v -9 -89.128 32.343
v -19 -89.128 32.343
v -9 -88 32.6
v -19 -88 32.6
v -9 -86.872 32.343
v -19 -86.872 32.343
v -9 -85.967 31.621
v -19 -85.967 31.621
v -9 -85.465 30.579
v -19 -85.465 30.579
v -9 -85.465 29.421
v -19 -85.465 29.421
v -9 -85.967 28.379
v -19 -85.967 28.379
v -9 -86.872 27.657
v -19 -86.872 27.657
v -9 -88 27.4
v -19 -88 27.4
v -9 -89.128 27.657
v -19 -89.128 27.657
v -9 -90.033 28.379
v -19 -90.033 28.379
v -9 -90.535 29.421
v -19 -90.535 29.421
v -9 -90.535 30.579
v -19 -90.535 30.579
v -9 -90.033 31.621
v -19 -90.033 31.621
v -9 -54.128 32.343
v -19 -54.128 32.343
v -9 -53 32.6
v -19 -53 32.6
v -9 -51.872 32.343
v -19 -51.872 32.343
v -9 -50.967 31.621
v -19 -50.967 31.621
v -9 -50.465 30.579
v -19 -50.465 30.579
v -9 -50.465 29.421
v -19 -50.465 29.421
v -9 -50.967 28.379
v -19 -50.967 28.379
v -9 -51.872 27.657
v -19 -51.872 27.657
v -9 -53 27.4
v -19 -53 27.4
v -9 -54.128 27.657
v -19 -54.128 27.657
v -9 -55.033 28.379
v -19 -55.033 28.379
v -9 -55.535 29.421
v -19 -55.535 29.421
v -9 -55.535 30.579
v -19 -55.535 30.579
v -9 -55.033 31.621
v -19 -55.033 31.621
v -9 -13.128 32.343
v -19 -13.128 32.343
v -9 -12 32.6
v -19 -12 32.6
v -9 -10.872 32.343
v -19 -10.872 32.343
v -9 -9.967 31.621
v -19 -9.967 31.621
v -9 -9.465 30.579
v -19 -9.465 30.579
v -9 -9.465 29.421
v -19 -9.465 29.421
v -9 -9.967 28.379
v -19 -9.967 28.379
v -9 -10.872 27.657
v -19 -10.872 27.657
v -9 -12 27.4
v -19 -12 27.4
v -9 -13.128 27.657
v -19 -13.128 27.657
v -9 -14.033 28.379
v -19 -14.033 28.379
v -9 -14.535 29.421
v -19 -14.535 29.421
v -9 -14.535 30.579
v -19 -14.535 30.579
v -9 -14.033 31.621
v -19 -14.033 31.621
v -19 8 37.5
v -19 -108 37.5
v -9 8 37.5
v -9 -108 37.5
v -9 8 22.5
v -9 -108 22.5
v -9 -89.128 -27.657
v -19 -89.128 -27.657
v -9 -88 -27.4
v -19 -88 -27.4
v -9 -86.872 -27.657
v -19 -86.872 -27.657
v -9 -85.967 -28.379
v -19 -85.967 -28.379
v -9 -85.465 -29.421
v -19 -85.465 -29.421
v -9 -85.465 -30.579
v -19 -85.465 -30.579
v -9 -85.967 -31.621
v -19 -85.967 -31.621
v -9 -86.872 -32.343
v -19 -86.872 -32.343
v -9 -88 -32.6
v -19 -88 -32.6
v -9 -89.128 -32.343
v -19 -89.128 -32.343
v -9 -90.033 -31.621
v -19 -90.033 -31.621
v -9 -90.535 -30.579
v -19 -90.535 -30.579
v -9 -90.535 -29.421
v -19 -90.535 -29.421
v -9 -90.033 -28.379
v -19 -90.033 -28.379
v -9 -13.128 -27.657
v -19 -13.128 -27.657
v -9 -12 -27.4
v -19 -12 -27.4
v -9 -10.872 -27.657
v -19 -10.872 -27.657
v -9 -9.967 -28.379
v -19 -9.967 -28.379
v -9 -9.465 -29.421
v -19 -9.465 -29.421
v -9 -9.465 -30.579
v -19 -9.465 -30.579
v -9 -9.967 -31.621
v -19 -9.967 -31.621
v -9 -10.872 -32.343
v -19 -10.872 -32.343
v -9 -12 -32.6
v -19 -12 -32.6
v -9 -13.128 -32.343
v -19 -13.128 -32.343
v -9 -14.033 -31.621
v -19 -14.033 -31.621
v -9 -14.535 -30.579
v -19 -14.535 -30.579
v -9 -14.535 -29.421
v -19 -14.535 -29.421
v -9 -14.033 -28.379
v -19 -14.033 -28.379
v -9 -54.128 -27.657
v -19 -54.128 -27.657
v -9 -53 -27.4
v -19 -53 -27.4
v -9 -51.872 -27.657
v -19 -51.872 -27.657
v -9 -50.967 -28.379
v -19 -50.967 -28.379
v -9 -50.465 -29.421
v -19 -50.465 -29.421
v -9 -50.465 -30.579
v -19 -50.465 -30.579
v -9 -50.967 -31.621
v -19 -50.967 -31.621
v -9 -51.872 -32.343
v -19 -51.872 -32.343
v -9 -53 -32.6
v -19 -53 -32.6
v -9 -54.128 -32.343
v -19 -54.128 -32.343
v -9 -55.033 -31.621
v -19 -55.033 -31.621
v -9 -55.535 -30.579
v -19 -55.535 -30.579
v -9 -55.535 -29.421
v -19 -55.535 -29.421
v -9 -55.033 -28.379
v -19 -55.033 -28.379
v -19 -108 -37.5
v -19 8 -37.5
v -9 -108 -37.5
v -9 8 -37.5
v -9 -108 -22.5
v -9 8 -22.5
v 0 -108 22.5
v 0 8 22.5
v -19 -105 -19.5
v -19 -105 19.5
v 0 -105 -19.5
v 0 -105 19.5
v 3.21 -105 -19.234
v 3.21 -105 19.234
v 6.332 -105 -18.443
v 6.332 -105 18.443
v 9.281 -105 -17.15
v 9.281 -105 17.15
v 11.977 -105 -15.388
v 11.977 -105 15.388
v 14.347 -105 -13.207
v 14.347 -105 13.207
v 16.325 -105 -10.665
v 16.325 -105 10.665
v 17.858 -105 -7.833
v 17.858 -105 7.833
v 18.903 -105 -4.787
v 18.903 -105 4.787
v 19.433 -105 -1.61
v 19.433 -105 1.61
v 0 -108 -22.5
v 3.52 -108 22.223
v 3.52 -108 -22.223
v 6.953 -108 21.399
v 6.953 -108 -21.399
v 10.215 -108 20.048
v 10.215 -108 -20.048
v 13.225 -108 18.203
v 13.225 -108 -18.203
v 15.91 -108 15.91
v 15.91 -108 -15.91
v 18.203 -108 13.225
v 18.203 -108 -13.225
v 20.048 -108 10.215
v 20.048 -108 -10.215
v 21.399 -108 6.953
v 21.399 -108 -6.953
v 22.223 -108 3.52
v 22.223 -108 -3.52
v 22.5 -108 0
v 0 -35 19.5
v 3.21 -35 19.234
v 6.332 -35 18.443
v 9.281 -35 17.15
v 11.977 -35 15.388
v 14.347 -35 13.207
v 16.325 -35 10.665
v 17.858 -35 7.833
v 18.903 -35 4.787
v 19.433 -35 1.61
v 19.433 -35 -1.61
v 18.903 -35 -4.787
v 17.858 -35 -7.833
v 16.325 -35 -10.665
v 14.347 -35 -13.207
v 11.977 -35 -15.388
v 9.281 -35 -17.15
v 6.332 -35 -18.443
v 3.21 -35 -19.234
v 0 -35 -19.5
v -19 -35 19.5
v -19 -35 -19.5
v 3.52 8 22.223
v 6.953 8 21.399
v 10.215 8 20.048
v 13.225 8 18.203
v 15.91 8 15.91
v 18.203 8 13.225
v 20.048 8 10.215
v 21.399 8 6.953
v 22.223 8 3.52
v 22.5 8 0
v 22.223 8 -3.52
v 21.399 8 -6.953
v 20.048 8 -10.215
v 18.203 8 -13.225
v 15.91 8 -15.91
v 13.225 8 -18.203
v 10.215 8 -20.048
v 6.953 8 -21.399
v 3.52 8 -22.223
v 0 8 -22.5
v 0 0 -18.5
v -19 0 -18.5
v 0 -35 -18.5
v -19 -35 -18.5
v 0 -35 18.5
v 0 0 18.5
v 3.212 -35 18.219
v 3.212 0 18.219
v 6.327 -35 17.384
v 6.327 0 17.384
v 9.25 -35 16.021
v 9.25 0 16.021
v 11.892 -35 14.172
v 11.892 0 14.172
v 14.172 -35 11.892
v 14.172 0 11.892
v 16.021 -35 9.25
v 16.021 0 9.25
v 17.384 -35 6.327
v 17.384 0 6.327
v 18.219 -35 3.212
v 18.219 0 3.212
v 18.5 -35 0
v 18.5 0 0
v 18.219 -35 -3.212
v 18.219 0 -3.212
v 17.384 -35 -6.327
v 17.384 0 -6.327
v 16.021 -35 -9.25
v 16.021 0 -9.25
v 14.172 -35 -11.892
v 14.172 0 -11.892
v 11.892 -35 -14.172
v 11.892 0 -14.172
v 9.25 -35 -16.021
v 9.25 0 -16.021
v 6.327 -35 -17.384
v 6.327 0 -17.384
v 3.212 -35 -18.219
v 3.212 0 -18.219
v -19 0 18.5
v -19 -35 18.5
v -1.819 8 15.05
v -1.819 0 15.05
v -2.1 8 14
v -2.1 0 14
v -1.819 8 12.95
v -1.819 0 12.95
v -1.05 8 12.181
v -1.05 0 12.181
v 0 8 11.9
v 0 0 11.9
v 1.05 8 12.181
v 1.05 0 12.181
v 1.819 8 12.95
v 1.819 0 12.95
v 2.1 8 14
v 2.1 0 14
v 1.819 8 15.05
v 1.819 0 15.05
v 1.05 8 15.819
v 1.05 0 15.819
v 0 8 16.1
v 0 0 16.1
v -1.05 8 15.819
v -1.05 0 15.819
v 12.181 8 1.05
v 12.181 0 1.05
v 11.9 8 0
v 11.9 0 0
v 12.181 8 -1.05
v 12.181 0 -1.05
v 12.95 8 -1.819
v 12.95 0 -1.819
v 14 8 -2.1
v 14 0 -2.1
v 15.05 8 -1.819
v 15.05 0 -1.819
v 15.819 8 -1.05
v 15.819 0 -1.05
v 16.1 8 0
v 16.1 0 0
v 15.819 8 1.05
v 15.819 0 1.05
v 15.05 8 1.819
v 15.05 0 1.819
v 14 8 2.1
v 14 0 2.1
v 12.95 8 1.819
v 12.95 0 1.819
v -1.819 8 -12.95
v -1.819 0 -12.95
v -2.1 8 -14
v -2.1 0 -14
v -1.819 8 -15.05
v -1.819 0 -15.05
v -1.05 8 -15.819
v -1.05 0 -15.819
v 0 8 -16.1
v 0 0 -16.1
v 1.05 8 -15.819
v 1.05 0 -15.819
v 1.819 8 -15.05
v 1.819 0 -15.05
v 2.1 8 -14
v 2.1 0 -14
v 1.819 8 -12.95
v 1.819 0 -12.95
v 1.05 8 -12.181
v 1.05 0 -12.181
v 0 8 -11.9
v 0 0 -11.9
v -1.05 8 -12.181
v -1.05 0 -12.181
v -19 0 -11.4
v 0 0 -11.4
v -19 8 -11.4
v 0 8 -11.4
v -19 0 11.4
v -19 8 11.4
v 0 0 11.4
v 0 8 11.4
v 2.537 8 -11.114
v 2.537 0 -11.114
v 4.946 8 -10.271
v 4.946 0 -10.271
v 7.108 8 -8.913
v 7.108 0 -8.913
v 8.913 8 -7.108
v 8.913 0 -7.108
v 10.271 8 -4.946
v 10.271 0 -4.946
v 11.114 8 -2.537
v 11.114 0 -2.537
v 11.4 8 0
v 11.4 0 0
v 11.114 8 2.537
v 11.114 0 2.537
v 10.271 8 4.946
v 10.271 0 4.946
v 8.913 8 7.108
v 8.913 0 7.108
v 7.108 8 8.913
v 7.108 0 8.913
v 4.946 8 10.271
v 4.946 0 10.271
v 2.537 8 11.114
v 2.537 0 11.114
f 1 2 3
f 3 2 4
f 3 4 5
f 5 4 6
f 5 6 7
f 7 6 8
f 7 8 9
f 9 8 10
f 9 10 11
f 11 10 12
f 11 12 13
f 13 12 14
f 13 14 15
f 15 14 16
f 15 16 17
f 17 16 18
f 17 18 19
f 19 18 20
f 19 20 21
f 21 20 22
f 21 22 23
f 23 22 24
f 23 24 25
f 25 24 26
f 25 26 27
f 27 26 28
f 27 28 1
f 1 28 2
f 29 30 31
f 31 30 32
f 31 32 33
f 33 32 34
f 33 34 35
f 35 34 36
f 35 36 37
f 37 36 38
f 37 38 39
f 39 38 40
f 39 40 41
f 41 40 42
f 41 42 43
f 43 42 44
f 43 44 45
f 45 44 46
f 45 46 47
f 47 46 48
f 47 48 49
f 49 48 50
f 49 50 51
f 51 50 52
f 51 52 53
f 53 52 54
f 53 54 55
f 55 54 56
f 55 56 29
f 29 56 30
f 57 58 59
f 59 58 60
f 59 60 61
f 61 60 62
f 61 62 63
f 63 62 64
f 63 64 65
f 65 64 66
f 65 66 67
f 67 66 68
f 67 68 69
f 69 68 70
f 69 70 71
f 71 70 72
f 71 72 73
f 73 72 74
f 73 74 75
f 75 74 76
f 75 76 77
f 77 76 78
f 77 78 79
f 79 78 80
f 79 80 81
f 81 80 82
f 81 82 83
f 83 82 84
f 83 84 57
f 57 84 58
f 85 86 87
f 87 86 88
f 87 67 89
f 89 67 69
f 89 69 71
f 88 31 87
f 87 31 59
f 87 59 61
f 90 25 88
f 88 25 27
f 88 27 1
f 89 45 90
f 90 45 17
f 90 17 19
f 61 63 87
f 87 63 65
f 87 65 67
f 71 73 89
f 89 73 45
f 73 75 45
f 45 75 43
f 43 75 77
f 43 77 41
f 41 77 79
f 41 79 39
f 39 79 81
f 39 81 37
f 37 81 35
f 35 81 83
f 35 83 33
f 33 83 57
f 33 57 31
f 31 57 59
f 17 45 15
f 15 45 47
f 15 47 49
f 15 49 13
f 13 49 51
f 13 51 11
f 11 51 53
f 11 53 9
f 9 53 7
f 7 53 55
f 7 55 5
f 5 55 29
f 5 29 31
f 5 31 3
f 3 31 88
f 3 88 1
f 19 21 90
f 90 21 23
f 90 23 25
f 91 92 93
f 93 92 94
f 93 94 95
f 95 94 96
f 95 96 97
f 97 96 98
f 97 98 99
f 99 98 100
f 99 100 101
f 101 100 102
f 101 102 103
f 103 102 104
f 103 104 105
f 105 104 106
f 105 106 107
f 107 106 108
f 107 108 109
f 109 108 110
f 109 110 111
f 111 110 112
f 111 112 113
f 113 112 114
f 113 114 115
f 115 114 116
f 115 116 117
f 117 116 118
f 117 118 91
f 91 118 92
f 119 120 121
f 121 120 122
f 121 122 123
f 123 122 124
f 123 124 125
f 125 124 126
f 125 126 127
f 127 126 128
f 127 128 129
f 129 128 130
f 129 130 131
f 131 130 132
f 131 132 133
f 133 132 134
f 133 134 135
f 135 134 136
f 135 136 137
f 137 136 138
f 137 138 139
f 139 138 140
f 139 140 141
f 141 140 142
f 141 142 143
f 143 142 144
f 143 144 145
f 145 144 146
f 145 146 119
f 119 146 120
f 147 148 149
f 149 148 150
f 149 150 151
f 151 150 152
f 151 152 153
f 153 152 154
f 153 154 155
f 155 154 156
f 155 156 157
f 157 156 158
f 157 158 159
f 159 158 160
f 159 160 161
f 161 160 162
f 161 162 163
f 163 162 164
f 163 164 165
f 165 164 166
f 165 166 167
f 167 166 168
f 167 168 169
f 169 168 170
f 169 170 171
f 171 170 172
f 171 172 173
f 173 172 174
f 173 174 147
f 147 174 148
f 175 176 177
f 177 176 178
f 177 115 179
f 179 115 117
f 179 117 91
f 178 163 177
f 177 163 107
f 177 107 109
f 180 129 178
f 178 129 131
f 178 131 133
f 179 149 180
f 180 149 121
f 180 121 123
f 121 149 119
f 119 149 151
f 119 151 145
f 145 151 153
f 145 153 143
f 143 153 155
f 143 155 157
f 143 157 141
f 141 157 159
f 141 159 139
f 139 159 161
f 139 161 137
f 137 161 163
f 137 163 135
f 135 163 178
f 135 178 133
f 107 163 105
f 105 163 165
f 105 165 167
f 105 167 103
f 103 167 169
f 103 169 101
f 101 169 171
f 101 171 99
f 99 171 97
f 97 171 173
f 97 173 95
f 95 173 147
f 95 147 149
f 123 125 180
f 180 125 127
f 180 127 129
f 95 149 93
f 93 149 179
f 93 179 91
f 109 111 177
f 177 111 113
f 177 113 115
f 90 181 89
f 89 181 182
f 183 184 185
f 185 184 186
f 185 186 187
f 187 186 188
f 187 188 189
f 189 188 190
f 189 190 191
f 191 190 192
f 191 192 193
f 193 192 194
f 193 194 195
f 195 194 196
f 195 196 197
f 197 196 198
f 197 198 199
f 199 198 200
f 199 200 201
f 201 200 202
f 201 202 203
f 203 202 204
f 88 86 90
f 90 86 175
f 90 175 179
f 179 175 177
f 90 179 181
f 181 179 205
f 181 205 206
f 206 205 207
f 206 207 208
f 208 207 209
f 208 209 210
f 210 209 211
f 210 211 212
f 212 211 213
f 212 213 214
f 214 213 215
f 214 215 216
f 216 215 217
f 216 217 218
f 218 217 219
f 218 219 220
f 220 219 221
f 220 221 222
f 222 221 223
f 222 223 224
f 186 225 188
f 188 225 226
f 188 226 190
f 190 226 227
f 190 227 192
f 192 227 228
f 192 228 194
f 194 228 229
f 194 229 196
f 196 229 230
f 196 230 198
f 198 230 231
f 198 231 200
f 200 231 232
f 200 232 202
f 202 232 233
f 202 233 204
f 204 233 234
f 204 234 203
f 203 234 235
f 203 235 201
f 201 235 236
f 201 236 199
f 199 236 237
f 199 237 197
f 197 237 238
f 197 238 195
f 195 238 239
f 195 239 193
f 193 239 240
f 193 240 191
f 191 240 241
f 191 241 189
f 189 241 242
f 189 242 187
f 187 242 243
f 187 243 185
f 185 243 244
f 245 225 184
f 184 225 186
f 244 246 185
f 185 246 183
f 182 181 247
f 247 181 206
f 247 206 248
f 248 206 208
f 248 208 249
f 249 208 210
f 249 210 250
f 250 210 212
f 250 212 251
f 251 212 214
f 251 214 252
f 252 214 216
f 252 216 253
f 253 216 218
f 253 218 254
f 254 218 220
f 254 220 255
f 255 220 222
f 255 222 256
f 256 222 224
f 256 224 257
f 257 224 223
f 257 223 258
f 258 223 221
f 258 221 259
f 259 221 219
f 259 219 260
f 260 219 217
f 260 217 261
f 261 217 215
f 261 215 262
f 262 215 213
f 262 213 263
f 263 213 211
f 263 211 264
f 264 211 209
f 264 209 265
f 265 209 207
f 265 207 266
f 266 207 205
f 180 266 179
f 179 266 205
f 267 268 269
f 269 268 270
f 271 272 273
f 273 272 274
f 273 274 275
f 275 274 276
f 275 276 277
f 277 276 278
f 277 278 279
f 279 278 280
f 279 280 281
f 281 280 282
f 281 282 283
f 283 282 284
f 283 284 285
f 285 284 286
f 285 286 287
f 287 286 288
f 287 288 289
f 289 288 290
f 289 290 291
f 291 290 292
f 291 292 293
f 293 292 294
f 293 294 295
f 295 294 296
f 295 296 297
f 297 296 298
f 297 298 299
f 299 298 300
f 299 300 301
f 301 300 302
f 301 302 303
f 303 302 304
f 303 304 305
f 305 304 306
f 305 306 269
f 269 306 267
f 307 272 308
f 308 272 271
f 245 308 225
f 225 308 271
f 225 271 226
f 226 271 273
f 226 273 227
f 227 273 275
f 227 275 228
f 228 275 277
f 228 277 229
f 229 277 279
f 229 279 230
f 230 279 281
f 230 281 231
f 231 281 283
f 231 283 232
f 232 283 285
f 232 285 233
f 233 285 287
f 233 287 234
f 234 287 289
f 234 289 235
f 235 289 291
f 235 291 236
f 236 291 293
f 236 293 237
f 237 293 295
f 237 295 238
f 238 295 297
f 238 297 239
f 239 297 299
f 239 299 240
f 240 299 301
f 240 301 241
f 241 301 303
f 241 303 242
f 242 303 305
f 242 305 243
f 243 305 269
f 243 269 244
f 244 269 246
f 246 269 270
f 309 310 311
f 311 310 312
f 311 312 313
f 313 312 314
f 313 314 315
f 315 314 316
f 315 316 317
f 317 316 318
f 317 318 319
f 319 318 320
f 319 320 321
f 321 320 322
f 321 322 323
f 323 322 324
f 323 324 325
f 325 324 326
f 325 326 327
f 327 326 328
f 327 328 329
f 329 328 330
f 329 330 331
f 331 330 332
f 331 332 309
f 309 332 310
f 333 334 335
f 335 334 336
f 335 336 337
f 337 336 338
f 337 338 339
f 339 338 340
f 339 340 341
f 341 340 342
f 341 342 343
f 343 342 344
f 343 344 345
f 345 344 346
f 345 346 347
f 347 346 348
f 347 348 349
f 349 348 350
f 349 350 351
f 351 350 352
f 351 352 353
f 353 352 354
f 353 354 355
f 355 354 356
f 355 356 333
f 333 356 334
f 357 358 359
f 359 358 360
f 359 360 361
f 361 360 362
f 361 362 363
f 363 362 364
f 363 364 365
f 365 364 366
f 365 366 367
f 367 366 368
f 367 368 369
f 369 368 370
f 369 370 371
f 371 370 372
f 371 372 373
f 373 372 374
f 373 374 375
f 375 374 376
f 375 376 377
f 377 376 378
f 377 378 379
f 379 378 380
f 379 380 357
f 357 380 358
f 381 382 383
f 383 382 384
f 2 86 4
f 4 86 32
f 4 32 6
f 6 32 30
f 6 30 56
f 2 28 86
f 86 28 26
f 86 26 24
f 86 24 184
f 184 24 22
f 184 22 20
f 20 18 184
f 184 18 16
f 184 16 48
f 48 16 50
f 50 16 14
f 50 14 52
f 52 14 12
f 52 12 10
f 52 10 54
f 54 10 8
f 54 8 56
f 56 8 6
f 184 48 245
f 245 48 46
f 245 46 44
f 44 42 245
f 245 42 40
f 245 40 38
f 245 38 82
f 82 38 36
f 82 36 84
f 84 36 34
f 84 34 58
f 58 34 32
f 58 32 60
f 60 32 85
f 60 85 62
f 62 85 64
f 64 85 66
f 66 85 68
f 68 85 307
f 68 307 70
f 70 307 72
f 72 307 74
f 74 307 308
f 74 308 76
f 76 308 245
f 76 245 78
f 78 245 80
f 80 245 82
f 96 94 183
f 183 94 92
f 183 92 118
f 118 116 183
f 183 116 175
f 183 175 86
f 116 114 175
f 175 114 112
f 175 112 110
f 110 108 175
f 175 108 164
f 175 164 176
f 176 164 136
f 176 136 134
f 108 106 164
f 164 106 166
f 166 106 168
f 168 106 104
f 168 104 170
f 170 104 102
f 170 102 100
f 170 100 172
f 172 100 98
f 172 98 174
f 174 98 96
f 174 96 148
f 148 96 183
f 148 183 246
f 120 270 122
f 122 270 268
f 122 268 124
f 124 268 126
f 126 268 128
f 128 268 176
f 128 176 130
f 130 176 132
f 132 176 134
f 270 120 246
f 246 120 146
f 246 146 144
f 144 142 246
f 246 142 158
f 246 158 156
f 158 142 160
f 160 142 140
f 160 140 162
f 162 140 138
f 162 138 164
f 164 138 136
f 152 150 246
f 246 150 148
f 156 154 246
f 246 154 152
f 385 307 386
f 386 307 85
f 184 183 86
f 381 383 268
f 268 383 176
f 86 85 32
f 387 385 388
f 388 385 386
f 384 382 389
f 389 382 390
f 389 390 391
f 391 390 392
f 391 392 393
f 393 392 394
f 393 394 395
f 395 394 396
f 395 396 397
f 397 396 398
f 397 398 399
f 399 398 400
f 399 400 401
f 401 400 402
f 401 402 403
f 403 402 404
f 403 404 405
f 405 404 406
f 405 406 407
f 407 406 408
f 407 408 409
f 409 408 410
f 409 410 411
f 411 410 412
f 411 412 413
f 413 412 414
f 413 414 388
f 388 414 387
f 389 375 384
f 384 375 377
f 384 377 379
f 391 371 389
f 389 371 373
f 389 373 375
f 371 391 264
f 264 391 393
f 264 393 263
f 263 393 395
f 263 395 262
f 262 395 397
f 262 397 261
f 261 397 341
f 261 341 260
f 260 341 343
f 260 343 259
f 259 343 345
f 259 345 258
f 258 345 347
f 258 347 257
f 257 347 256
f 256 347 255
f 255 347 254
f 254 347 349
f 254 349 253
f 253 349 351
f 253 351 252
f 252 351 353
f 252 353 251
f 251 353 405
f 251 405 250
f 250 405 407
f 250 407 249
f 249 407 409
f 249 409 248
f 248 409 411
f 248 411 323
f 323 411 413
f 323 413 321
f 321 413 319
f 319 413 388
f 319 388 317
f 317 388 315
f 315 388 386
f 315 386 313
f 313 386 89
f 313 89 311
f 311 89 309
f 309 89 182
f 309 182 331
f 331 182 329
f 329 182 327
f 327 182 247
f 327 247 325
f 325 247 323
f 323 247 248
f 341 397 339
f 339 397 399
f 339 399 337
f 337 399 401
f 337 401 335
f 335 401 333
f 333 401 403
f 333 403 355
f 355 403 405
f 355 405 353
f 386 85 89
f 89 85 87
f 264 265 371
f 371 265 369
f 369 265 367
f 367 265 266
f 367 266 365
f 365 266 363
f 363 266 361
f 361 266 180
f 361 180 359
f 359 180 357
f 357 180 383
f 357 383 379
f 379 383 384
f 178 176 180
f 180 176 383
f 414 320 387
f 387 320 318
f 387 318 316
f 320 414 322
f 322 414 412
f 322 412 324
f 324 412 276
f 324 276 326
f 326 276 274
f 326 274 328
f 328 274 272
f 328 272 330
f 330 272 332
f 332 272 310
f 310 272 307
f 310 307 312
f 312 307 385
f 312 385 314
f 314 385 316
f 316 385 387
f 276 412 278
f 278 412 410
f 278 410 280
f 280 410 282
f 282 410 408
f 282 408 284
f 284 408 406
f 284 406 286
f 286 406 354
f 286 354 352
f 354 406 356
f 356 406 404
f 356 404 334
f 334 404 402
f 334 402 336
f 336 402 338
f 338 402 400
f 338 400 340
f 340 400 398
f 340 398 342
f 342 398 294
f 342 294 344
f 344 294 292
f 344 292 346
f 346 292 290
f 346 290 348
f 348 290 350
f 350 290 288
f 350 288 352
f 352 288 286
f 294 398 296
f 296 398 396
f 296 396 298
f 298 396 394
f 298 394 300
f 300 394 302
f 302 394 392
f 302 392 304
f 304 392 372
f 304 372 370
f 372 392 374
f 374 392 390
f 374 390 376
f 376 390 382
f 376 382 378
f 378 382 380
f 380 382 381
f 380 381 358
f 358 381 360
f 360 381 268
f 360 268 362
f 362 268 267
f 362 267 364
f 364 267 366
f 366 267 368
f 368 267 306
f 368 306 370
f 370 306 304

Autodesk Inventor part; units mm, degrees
ref_plane "YZ Plane" through (0, 0, 0) normal (1, 0, 0) x (0, 1, 0)
ref_plane "XZ Plane" through (0, 0, 0) normal (0, 1, 0) x (-1, 0, 0)
ref_plane "XY Plane" through (0, 0, 0) normal (0, 0, 1) x (1, 0, 0)
sketch "Boceto1" plane through (0, 0, 0) normal (0, 1, 0) x (-1, 0, 0)
  circle A0 centre (0, 0) radius 14
  circle A1 centre (0, 14) radius 2.1
  circle A2 centre (0, 0) radius 11
  line L0 (0, 18.1) -> (19, 18.1)
  arc A3 (0, 18.1) -> (-18.1, 0) centre (0, 0) ccw
  line L1 (0, 0) -> (5.461, 0)
  arc A4 (0, 11.4) -> (-11.4, 0) centre (0, 0) ccw
  line L2 (0, 11.4) -> (19, 11.4)
  circle A5 centre (0, -14) radius 2.1
  line L3 (0, -18.1) -> (19, -18.1)
  arc A6 (-18.1, 0) -> (0, -18.1) centre (0, 0) ccw
  arc A7 (-11.4, 0) -> (0, -11.4) centre (0, 0) ccw
  line L4 (0, -11.4) -> (19, -11.4)
  circle A8 centre (-14, 0) radius 2.1
  circle A9 centre (0, 0) radius 19
  line L5 (19, 11.4) -> (19, 18.1)
  line L6 (19, -11.4) -> (19, -18.1)
  point P0 (8.1265, 11.4)
  point P1 (8.1265, 18.1)
  point P2 (8.1265, -11.4)
  point P3 (8.1265, -18.1)
  dimension "d0" = 28
  dimension "d1" = 4.2
  dimension "d3" = 22
  dimension "d12" = 11.4
  dimension "d18" = 4.2
  dimension "d19" = 38
extrude "Extrusión1" add sketch "Boceto1" along normal blind 8 contours L2 A4 A7 L4 A0 A5 A8 A1 | A0 A1 A8 A5 L4 A9 L3 A6 A3 L0 L2 | A9 L0 L5 L2 | L4 L6 L3 A9
sketch "Boceto2" plane through (0, 0, 0) normal (0, -1, 0) x (1, 0, 0)
  arc A0 (0, -18.5) -> (0, 18.5) centre (0, 0) ccw
  line L0 (0, 18.5) -> (-19, 18.5)
  line L1 (0, 22.5) -> (-19, 22.5)
  line L2 (0, -18.5) -> (-19, -18.5)
  line L3 (0, -22.5) -> (-19, -22.5)
  arc A1 (0, -22.5) -> (0, 22.5) centre (0, 0) ccw
  line L4 (-19, 18.1) -> (0, 18.1) projected
  line L5 (-19, 18.1) -> (-19, 18.5)
  line L6 (-19, -18.1) -> (-19, -11.4) projected
  line L7 (-19, -18.1) -> (-19, -18.5)
  line L8 (-19, 22.5) -> (-19, 24.19)
  line L9 (-19, 18.5) -> (-19, 22.5)
  line L10 (-19, -18.5) -> (-19, -22.5)
  line L11 (-19, -22.5) -> (-19, -24.4563)
  point P0 (-8.1265, 18.5)
  point P1 (-8.1265, 18.1)
  point P2 (-8.1265, 22.5)
  point P3 (-8.1265, -18.5)
  point P4 (-8.1265, -22.5)
  dimension "d14" = 37
extrude "Extrusión2" add sketch "Boceto2" along normal blind 35
sketch "Boceto3" plane through (0, 0, 0) normal (0, 1, 0) x (1, 0, 0)
  line L0 (0, 18.1) -> (-19, 18.1) projected
  line L1 (-8.1265, 18.1) -> (0, 18.1)
  line L2 (-8.1265, -11.4) -> (-8.1265, -18.1) projected
  arc A0 (0, -18.1) -> (0, 18.1) centre (0, 0) ccw projected
  line L3 (-8.1265, -18.1) -> (0, -18.1)
  arc A1 (-8.1265, -16.1731) -> (0, 18.1) centre (0, 0) ccw
  line L4 (-8.1265, -22.5) -> (-8.1265, -18.5) projected
  line L5 (-8.1265, -18.1) -> (-8.1265, -22.5)
  line L6 (-8.1265, -22.5) -> (0, -22.5)
  line L7 (-19, 22.5) -> (0, 22.5) projected
  line L8 (-8.1265, 22.5) -> (0, 22.5)
  arc A2 (0, -22.5) -> (0, 22.5) centre (0, 0) ccw
  line L9 (-19, -22.5) -> (-19, 22.5)
  line L10 (-8.1265, 18.1) -> (-19, 18.1)
  line L11 (-19, 22.5) -> (-8.1265, 22.5)
  line L12 (0, -22.5) -> (-19, -22.5) projected
  line L13 (-8.1265, -22.5) -> (-19, -22.5)
  line L14 (-19, -11.4) -> (-19, -18.1) projected
  line L15 (-19, -22.5) -> (-19, -18.1)
  line L16 (-19, -18.1) -> (-8.1265, -18.1)
  line L17 (-19, -18.1) -> (0, -18.1) projected
extrude "Extrusión3" add sketch "Boceto3" along normal blind 8 contours L0 L9 L7 A2 L6 L4 L5 L3 A0 | L5 L4 L12 L9 L16
sketch "Boceto4" plane through (0, -35, 0) normal (0, -1, 0) x (1, 0, 0)
  line L0 (0, 19.5) -> (-19, 19.5)
  line L1 (-19, 22.5) -> (-19, 18.5) projected
  line L2 (-19, 22.5) -> (-19, 19.5)
  line L3 (0, -19.5) -> (-19, -19.5)
  line L4 (-19, -22.5) -> (-19, -11.4) projected
  line L5 (-19, -22.5) -> (-19, -19.5)
  line L6 (-19, -22.5) -> (0, -22.5) projected
  line L7 (-19, -22.5) -> (0, -22.5)
  arc A0 (0, -22.5) -> (0, 22.5) centre (0, 0) ccw projected
  line L8 (-19, 22.5) -> (0, 22.5) projected
  line L9 (0, 22.5) -> (-19, 22.5)
  arc A1 (0, -19.5) -> (0, 19.5) centre (0, 0) ccw
  arc A2 (0, -22.5) -> (0, 22.5) centre (0, 0) ccw
extrude "Extrusión4" add sketch "Boceto4" along normal blind 70
sketch "Boceto5" plane through (0, -105, 0) normal (0, -1, 0) x (1, 0, 0)
  line L0 (0, -22.5) -> (-19, -22.5) projected
  line L1 (0, -22.5) -> (-19, -22.5)
  line L2 (-19, -22.5) -> (-19, -11.4) projected
  line L3 (-19, 22.5) -> (0, 22.5) projected
  line L4 (-19, -22.5) -> (-19, 22.5)
  arc A0 (0, -22.5) -> (0, 22.5) centre (0, 0) ccw
extrude "Extrusión5" add sketch "Boceto5" along normal blind 3
sketch "Boceto6" plane through (-19, 0, 11.4) normal (-1, 0, 0) x (0, 0, 1)
  line L0 (-33.9, 8) -> (-48.9, 8)
  line L1 (-48.9, 8) -> (-48.9, -32)
  line L2 (-48.9, -108) -> (-33.9, -108)
  line L3 (-33.9, -108) -> (-33.9, 8)
  circle A0 centre (-41.4, -53) radius 2.6
  line L4 (-48.9, -32) -> (-48.9, -108)
  line L5 (-48.9, -12) -> (-33.9, -12)
  circle A1 centre (-41.4, -12) radius 2.6
  line L6 (-11.4, 2) -> (-11.4, -20.5205)
  line L7 (-48.9, -50) -> (-33.9, -50)
  line L8 (-33.9, 8) -> (-33.9, -108) projected
  circle A2 centre (-41.4, -88) radius 2.6
  line L9 (11.1, 8) -> (26.1, 8)
  line L10 (26.1, 8) -> (26.1, -32)
  line L11 (26.1, -108) -> (11.1, -108)
  line L12 (11.1, -108) -> (11.1, 8)
  circle A3 centre (18.6, -53) radius 2.6
  line L13 (26.1, -32) -> (26.1, -108)
  line L14 (26.1, -12) -> (11.1, -12)
  circle A4 centre (18.6, -12) radius 2.6
  line L15 (26.1, -50) -> (11.1, -50)
  line L16 (11.1, 8) -> (11.1, -108)
  circle A5 centre (18.6, -88) radius 2.6
  point P0 (-11.4, 0)
  point P1 (11.1, 8)
  dimension "d25" = 15
  dimension "d26" = 5.2
  dimension "d27" = 5.2
  dimension "d28" = 20
extrude "Extrusión6" add sketch "Boceto6" against normal blind 10 contours L3 L5 A1 L1 L0 | L3 L7 L4 L1 L5 A1 | L3 L2 L4 L7 | L9 L10 L14 A4 L12 | L14 A4 L10 L13 L15 L12 | L15 L13 L11 L12
properties part number "motor-fastening"
